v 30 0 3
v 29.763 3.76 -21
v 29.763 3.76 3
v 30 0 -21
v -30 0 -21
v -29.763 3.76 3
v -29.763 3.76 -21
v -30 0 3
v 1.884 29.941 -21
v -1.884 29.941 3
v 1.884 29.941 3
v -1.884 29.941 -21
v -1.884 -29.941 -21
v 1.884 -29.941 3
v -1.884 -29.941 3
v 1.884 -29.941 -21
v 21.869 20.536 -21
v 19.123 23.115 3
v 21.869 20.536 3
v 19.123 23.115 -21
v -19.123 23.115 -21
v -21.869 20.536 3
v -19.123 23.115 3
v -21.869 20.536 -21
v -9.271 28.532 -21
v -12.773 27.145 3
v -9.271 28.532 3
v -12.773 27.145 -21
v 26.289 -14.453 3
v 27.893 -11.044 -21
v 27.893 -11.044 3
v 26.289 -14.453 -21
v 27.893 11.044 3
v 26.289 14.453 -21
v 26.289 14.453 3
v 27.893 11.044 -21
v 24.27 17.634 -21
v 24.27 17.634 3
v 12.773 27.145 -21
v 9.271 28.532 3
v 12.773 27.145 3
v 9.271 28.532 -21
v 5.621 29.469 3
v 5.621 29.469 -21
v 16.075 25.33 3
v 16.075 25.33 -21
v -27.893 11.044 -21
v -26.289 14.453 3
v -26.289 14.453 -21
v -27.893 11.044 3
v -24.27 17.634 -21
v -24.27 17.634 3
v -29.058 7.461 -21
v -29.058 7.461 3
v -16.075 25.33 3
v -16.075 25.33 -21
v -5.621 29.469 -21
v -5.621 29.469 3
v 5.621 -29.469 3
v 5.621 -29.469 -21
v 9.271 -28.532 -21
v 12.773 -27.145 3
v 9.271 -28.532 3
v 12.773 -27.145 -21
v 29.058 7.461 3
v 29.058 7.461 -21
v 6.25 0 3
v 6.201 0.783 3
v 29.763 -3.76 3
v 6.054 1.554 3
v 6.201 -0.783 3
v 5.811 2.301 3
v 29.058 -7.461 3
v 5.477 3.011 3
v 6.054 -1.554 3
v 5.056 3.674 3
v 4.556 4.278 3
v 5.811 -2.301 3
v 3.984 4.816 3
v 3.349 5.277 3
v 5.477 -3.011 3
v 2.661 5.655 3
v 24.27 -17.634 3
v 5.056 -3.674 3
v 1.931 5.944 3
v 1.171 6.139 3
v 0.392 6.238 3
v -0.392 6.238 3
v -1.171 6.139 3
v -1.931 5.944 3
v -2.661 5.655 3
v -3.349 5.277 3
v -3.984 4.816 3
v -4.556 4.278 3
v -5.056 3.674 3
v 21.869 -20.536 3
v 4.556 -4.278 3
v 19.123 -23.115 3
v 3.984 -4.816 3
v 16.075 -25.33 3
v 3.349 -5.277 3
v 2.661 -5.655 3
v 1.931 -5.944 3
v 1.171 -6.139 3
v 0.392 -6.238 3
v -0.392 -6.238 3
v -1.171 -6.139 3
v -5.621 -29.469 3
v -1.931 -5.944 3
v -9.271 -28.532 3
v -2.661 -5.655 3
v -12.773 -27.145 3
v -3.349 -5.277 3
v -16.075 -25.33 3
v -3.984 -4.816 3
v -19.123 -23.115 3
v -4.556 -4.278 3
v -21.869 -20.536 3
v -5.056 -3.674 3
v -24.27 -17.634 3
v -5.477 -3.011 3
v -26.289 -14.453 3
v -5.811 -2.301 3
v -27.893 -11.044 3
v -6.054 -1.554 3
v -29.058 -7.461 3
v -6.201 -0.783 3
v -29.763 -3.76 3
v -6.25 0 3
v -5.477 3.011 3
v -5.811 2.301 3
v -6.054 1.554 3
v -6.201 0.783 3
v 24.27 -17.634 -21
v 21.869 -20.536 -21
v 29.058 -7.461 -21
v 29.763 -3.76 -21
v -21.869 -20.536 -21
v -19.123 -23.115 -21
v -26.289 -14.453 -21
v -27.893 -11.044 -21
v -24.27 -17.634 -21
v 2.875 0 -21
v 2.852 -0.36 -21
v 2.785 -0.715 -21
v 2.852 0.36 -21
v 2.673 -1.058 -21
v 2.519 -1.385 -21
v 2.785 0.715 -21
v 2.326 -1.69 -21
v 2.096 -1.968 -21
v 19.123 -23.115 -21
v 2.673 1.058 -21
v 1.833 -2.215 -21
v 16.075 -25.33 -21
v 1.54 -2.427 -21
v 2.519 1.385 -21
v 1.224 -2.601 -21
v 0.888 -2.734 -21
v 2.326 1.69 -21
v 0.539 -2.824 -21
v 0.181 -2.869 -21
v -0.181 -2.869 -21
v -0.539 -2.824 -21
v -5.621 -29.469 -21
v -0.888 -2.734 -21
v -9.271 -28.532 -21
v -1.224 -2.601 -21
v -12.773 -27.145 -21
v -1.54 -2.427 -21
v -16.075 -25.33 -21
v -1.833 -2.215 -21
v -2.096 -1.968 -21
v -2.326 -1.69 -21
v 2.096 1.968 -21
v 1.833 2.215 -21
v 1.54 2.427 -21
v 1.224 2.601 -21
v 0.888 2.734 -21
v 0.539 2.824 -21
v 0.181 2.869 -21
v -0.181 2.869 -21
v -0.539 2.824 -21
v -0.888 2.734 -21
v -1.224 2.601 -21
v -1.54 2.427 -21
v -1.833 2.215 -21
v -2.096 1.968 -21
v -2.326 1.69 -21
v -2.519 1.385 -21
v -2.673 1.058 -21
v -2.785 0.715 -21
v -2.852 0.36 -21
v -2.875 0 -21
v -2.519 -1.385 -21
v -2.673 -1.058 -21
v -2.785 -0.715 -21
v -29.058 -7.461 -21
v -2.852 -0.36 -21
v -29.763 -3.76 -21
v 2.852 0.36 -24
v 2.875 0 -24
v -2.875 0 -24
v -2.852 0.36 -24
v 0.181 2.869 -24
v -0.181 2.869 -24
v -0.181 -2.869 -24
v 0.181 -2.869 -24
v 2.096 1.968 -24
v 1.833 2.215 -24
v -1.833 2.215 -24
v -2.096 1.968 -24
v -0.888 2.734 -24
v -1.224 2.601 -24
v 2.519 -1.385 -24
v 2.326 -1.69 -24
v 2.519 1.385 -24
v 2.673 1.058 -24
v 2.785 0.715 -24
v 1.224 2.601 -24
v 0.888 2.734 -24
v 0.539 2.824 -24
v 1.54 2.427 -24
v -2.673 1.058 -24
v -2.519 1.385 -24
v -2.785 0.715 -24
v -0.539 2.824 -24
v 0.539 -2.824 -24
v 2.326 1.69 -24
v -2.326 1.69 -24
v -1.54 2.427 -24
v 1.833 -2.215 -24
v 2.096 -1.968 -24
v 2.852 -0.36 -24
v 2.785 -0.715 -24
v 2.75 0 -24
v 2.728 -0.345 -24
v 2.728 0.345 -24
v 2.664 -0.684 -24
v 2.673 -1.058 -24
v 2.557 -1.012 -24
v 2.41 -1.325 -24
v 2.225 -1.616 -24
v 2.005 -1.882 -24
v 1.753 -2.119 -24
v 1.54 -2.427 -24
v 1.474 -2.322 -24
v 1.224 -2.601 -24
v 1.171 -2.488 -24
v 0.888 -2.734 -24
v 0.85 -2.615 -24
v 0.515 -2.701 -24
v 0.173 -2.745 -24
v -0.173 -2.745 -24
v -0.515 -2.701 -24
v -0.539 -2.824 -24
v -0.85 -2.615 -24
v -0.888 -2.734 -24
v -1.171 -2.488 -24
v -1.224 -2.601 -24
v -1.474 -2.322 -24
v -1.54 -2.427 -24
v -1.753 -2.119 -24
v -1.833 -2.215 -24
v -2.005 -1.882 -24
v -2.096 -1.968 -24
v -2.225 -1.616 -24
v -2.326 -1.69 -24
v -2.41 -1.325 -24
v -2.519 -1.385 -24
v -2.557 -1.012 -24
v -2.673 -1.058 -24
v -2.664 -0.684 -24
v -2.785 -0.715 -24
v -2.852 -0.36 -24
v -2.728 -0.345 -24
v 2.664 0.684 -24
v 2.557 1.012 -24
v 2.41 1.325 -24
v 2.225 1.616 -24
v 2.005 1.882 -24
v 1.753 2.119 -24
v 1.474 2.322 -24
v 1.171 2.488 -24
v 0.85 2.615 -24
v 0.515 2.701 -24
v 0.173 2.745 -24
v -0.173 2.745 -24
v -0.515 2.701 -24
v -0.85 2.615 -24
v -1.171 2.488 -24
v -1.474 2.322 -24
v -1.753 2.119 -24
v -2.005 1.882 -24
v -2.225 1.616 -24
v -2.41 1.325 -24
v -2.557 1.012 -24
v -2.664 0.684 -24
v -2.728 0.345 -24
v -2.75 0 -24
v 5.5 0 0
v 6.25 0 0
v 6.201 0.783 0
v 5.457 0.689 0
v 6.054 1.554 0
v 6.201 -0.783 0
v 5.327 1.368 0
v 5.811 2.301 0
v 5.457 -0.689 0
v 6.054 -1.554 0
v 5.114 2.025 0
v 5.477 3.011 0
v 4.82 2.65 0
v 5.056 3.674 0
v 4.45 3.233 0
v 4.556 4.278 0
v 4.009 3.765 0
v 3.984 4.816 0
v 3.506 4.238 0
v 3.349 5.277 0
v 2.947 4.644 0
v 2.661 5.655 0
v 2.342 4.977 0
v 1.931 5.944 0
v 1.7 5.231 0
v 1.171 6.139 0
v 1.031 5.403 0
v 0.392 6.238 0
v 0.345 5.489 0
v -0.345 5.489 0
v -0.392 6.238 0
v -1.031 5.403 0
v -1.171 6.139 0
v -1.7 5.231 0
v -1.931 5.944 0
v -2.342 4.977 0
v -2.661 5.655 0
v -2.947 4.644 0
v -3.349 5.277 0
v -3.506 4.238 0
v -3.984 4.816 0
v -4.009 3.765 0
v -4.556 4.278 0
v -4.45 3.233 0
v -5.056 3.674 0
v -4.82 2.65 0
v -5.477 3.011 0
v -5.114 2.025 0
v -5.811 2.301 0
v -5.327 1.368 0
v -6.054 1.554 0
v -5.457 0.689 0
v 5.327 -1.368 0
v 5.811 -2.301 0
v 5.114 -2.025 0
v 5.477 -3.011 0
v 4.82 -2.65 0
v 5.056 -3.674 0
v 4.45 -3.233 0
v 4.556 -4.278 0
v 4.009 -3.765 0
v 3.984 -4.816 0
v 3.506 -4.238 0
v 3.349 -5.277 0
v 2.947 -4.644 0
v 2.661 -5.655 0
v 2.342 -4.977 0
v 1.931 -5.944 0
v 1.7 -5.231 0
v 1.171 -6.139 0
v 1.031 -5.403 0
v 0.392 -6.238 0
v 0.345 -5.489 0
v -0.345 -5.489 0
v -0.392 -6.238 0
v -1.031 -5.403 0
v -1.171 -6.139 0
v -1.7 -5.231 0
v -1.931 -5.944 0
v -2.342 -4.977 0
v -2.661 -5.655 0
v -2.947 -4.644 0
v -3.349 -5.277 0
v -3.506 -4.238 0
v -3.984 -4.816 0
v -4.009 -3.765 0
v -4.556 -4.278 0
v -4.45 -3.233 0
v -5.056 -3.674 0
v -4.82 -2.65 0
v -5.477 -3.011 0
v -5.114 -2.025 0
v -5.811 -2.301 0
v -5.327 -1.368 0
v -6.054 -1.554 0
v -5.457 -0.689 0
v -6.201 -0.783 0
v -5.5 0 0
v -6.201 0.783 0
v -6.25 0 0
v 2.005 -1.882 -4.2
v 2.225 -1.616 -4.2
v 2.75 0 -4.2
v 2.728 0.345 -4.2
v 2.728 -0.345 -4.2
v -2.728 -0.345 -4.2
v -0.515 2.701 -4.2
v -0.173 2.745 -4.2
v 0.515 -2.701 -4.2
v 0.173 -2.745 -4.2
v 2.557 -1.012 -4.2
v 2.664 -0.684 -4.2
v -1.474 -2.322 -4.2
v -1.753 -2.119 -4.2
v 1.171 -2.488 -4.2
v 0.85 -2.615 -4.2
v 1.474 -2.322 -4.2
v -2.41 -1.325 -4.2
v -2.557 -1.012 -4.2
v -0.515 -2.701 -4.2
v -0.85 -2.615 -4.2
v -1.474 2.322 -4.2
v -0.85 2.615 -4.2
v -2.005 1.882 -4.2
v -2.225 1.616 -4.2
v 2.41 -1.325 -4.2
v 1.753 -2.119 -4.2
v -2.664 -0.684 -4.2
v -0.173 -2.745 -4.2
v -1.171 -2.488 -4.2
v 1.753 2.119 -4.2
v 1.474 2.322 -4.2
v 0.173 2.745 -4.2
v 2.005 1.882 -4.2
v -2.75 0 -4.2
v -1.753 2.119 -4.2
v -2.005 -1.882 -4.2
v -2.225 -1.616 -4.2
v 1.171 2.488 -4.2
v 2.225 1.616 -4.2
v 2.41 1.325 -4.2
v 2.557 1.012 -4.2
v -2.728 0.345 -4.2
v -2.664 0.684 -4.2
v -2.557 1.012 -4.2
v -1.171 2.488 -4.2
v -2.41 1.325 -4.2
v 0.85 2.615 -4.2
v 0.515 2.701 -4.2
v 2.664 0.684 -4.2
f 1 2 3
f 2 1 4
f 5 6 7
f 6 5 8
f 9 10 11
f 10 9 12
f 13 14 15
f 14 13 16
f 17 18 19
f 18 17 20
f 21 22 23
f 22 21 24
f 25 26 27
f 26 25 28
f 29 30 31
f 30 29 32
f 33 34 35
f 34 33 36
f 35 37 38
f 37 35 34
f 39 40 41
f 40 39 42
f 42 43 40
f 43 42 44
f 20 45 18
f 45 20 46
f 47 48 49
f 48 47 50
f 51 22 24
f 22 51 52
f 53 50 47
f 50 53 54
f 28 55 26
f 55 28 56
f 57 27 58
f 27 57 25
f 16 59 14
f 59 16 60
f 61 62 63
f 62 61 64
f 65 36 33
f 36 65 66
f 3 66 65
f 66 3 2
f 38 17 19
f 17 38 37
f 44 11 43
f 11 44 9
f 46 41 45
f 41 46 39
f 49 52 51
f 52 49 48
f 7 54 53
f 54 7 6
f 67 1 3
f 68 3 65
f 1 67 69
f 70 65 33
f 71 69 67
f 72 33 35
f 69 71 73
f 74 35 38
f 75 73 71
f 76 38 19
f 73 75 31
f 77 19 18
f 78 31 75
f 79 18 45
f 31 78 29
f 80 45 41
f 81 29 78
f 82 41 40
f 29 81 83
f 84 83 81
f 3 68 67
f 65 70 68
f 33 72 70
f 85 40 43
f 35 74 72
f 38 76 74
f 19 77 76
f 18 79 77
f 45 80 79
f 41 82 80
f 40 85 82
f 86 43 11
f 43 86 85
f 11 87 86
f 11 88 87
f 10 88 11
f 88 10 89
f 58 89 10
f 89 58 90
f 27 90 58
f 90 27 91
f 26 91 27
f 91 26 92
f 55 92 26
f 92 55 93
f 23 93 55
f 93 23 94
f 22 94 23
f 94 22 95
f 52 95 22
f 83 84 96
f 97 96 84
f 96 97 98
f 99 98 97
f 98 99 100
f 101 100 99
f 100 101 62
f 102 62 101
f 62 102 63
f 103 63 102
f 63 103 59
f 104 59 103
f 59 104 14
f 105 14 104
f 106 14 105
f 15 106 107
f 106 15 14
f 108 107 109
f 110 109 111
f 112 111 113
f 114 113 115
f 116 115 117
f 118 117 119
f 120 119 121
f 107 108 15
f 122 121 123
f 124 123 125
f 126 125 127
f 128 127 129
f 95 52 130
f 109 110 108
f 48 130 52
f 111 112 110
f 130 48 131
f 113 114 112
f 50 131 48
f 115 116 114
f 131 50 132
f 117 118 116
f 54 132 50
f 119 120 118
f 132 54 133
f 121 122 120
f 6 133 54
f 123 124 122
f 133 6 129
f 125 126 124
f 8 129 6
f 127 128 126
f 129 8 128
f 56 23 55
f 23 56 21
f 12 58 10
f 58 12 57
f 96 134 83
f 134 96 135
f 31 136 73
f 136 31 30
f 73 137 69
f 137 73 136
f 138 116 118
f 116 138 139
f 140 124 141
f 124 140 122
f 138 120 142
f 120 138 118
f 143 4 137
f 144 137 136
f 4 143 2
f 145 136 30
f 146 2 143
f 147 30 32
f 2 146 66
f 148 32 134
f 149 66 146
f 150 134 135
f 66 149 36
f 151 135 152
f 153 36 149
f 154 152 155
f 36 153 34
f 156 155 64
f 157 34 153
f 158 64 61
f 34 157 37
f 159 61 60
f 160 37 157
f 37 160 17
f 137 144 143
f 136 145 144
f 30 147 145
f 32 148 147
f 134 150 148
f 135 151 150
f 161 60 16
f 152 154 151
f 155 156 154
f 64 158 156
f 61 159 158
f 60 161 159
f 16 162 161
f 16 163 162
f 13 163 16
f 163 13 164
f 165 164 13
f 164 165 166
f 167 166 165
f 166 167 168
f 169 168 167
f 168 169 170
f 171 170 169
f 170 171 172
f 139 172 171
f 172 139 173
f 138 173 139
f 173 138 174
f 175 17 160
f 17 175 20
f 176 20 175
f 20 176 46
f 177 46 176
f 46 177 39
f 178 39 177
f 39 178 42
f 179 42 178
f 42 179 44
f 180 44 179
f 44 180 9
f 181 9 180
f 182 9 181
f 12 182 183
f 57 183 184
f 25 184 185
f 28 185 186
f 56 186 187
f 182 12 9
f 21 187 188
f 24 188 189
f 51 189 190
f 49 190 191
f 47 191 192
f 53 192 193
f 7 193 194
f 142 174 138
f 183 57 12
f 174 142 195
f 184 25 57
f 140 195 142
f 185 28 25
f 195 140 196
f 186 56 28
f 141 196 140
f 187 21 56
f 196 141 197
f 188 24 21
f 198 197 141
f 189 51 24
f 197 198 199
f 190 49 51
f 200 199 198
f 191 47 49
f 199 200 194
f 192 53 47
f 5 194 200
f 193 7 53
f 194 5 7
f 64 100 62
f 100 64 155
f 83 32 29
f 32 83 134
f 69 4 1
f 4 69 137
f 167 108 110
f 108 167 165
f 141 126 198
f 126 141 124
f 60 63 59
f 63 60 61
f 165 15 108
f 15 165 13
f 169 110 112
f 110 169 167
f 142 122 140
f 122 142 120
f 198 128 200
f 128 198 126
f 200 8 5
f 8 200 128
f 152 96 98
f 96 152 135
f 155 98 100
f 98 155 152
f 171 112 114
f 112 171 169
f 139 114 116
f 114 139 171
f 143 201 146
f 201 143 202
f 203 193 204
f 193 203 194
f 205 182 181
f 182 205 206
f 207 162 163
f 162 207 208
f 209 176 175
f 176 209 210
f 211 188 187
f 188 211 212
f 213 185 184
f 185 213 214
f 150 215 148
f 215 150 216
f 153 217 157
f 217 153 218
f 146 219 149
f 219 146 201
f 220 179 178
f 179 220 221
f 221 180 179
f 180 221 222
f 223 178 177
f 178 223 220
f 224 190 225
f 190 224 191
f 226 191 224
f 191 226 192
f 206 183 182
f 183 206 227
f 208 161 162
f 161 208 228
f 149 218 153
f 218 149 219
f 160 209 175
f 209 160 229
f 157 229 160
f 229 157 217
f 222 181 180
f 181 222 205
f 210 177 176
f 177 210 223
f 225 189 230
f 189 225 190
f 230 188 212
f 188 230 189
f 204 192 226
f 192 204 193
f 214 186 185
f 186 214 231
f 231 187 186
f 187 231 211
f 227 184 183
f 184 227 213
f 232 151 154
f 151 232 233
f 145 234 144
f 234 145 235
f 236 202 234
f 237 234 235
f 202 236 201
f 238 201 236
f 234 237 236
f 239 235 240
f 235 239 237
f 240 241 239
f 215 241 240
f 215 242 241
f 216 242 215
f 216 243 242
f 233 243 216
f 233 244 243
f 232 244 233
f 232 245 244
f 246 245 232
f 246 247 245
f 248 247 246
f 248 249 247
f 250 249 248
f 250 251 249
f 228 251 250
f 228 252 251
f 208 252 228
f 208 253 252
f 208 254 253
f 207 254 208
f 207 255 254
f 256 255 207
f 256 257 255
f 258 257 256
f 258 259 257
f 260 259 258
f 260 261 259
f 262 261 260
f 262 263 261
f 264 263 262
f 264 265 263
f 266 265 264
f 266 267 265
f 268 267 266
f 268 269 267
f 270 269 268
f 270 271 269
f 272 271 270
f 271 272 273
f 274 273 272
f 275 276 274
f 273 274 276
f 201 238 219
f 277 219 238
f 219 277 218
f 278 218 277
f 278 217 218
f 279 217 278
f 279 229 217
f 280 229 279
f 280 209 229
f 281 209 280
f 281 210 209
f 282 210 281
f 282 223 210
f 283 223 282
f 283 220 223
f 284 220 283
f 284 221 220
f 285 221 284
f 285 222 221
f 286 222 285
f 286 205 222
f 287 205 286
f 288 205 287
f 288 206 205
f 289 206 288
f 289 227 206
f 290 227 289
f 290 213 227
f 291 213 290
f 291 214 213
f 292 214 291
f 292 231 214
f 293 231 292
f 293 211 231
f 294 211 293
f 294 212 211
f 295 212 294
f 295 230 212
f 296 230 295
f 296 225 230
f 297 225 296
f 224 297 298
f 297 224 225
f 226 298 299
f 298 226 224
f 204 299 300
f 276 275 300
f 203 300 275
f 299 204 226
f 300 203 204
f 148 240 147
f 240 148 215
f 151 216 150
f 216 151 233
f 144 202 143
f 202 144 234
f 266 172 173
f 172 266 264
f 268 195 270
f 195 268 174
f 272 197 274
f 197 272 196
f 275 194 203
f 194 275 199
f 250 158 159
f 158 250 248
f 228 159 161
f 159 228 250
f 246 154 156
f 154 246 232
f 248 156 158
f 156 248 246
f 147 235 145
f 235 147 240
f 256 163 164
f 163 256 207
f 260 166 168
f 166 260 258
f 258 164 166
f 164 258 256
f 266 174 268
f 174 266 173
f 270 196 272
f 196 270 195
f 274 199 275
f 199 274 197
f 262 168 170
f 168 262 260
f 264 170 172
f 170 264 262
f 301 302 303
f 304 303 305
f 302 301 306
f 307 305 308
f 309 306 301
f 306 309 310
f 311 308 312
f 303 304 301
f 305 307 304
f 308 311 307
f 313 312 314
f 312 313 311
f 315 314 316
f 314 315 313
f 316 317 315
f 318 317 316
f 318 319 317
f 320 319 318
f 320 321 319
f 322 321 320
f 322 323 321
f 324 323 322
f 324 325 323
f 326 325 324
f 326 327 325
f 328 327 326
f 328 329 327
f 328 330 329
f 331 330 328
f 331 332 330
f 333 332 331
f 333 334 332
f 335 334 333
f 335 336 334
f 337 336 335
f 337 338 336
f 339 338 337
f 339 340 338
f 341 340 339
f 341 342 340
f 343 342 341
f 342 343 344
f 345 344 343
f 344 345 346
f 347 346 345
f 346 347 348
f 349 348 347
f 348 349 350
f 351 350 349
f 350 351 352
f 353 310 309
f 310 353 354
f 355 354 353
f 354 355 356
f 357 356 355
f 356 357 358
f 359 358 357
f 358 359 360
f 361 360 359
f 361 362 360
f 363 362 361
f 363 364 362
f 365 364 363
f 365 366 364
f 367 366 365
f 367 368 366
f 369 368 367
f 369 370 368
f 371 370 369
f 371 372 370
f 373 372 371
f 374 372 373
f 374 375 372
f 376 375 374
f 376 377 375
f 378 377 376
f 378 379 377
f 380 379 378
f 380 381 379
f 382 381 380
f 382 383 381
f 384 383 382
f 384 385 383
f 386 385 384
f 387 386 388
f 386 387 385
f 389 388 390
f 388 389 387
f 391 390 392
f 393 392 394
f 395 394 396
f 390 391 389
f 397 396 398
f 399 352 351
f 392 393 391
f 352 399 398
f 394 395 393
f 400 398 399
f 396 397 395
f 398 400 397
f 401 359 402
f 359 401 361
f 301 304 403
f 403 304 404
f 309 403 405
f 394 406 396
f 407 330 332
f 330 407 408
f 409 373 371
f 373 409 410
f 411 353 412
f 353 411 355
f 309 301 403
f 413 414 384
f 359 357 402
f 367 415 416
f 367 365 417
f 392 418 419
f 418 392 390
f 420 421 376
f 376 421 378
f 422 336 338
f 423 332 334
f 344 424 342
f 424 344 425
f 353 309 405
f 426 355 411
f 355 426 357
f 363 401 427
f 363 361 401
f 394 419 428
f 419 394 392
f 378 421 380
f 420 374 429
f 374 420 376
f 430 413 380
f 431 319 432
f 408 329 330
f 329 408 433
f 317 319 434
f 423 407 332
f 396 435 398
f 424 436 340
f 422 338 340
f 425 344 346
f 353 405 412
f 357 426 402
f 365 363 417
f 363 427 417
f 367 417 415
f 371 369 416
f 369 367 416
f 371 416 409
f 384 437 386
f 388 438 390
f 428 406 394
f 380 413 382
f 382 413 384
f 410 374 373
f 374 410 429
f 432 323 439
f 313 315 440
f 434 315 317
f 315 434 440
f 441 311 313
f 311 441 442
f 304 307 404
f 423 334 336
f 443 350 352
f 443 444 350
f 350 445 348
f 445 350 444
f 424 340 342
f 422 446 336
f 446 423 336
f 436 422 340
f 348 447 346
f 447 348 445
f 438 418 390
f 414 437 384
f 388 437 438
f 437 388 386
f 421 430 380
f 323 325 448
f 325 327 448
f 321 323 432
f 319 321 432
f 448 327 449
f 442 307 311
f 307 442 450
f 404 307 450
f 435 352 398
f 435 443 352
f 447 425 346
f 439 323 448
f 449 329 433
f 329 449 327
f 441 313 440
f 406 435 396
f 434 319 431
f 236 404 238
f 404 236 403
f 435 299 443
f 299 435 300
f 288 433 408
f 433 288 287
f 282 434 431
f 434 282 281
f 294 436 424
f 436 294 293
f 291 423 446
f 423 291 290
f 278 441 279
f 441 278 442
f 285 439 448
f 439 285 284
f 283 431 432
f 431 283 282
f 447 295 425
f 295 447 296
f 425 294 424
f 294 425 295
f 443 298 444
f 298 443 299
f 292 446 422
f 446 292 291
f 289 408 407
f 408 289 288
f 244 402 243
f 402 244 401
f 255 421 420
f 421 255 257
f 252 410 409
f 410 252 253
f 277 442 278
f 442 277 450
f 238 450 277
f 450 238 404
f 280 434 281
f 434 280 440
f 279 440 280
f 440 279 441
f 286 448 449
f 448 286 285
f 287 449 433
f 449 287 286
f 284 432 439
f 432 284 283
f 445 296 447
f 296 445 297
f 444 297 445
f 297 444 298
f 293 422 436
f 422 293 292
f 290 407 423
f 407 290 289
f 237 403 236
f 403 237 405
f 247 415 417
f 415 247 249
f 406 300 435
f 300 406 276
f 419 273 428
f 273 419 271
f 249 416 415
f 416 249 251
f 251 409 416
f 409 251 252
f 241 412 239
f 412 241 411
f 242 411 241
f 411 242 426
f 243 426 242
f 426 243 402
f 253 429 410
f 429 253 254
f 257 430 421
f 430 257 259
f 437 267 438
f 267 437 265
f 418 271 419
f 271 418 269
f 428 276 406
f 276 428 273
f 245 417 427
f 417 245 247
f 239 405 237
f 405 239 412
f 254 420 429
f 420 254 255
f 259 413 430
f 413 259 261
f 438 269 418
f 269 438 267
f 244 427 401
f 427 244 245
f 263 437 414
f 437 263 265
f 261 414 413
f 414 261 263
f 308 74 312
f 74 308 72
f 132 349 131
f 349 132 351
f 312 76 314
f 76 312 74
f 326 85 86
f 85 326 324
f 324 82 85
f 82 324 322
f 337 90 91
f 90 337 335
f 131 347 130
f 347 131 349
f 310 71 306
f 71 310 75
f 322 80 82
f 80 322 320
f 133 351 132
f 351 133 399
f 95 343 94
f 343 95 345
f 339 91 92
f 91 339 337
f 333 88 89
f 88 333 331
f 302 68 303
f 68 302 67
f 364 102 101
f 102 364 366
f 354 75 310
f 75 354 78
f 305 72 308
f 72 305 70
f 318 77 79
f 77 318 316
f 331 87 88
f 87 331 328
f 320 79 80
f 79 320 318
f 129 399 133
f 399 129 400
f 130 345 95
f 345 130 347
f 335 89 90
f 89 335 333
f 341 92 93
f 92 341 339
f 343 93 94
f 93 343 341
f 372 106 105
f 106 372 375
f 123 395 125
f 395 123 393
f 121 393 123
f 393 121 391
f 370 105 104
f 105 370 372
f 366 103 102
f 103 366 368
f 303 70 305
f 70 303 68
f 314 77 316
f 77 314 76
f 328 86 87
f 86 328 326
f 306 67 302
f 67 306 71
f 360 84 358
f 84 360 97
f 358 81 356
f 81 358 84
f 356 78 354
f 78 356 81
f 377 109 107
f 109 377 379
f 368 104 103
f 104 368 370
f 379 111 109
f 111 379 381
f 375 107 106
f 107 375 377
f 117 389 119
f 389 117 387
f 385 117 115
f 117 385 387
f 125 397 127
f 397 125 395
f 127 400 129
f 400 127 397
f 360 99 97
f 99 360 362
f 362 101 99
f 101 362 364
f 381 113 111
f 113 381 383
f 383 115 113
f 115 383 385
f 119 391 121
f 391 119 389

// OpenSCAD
$fn = 50;


difference() {
	union() {
		translate(v = [0, 0, -21.0000000000]) {
			cylinder(h = 24, r = 30.0000000000);
		}
		#translate(v = [0, 0, -24.0000000000]) {
			cylinder(h = 24, r = 2.8750000000);
		}
	}
	union() {
		translate(v = [0, 0, 0]) {
			rotate(a = [0, 0, 0]) {
				difference() {
					union() {
						translate(v = [0, 0, -24.0000000000]) {
							cylinder(h = 24, r = 2.2500000000);
						}
						translate(v = [0, 0, -4.2000000000]) {
							cylinder(h = 4.2000000000, r1 = 2.7500000000, r2 = 5.5000000000);
						}
						translate(v = [0, 0, -24.0000000000]) {
							cylinder(h = 24, r = 2.7500000000);
						}
						translate(v = [0, 0, -24.0000000000]) {
							cylinder(h = 24, r = 2.2500000000);
						}
					}
					union();
				}
			}
		}
		#cylinder(h = 3, r = 6.2500000000);
	}
}
